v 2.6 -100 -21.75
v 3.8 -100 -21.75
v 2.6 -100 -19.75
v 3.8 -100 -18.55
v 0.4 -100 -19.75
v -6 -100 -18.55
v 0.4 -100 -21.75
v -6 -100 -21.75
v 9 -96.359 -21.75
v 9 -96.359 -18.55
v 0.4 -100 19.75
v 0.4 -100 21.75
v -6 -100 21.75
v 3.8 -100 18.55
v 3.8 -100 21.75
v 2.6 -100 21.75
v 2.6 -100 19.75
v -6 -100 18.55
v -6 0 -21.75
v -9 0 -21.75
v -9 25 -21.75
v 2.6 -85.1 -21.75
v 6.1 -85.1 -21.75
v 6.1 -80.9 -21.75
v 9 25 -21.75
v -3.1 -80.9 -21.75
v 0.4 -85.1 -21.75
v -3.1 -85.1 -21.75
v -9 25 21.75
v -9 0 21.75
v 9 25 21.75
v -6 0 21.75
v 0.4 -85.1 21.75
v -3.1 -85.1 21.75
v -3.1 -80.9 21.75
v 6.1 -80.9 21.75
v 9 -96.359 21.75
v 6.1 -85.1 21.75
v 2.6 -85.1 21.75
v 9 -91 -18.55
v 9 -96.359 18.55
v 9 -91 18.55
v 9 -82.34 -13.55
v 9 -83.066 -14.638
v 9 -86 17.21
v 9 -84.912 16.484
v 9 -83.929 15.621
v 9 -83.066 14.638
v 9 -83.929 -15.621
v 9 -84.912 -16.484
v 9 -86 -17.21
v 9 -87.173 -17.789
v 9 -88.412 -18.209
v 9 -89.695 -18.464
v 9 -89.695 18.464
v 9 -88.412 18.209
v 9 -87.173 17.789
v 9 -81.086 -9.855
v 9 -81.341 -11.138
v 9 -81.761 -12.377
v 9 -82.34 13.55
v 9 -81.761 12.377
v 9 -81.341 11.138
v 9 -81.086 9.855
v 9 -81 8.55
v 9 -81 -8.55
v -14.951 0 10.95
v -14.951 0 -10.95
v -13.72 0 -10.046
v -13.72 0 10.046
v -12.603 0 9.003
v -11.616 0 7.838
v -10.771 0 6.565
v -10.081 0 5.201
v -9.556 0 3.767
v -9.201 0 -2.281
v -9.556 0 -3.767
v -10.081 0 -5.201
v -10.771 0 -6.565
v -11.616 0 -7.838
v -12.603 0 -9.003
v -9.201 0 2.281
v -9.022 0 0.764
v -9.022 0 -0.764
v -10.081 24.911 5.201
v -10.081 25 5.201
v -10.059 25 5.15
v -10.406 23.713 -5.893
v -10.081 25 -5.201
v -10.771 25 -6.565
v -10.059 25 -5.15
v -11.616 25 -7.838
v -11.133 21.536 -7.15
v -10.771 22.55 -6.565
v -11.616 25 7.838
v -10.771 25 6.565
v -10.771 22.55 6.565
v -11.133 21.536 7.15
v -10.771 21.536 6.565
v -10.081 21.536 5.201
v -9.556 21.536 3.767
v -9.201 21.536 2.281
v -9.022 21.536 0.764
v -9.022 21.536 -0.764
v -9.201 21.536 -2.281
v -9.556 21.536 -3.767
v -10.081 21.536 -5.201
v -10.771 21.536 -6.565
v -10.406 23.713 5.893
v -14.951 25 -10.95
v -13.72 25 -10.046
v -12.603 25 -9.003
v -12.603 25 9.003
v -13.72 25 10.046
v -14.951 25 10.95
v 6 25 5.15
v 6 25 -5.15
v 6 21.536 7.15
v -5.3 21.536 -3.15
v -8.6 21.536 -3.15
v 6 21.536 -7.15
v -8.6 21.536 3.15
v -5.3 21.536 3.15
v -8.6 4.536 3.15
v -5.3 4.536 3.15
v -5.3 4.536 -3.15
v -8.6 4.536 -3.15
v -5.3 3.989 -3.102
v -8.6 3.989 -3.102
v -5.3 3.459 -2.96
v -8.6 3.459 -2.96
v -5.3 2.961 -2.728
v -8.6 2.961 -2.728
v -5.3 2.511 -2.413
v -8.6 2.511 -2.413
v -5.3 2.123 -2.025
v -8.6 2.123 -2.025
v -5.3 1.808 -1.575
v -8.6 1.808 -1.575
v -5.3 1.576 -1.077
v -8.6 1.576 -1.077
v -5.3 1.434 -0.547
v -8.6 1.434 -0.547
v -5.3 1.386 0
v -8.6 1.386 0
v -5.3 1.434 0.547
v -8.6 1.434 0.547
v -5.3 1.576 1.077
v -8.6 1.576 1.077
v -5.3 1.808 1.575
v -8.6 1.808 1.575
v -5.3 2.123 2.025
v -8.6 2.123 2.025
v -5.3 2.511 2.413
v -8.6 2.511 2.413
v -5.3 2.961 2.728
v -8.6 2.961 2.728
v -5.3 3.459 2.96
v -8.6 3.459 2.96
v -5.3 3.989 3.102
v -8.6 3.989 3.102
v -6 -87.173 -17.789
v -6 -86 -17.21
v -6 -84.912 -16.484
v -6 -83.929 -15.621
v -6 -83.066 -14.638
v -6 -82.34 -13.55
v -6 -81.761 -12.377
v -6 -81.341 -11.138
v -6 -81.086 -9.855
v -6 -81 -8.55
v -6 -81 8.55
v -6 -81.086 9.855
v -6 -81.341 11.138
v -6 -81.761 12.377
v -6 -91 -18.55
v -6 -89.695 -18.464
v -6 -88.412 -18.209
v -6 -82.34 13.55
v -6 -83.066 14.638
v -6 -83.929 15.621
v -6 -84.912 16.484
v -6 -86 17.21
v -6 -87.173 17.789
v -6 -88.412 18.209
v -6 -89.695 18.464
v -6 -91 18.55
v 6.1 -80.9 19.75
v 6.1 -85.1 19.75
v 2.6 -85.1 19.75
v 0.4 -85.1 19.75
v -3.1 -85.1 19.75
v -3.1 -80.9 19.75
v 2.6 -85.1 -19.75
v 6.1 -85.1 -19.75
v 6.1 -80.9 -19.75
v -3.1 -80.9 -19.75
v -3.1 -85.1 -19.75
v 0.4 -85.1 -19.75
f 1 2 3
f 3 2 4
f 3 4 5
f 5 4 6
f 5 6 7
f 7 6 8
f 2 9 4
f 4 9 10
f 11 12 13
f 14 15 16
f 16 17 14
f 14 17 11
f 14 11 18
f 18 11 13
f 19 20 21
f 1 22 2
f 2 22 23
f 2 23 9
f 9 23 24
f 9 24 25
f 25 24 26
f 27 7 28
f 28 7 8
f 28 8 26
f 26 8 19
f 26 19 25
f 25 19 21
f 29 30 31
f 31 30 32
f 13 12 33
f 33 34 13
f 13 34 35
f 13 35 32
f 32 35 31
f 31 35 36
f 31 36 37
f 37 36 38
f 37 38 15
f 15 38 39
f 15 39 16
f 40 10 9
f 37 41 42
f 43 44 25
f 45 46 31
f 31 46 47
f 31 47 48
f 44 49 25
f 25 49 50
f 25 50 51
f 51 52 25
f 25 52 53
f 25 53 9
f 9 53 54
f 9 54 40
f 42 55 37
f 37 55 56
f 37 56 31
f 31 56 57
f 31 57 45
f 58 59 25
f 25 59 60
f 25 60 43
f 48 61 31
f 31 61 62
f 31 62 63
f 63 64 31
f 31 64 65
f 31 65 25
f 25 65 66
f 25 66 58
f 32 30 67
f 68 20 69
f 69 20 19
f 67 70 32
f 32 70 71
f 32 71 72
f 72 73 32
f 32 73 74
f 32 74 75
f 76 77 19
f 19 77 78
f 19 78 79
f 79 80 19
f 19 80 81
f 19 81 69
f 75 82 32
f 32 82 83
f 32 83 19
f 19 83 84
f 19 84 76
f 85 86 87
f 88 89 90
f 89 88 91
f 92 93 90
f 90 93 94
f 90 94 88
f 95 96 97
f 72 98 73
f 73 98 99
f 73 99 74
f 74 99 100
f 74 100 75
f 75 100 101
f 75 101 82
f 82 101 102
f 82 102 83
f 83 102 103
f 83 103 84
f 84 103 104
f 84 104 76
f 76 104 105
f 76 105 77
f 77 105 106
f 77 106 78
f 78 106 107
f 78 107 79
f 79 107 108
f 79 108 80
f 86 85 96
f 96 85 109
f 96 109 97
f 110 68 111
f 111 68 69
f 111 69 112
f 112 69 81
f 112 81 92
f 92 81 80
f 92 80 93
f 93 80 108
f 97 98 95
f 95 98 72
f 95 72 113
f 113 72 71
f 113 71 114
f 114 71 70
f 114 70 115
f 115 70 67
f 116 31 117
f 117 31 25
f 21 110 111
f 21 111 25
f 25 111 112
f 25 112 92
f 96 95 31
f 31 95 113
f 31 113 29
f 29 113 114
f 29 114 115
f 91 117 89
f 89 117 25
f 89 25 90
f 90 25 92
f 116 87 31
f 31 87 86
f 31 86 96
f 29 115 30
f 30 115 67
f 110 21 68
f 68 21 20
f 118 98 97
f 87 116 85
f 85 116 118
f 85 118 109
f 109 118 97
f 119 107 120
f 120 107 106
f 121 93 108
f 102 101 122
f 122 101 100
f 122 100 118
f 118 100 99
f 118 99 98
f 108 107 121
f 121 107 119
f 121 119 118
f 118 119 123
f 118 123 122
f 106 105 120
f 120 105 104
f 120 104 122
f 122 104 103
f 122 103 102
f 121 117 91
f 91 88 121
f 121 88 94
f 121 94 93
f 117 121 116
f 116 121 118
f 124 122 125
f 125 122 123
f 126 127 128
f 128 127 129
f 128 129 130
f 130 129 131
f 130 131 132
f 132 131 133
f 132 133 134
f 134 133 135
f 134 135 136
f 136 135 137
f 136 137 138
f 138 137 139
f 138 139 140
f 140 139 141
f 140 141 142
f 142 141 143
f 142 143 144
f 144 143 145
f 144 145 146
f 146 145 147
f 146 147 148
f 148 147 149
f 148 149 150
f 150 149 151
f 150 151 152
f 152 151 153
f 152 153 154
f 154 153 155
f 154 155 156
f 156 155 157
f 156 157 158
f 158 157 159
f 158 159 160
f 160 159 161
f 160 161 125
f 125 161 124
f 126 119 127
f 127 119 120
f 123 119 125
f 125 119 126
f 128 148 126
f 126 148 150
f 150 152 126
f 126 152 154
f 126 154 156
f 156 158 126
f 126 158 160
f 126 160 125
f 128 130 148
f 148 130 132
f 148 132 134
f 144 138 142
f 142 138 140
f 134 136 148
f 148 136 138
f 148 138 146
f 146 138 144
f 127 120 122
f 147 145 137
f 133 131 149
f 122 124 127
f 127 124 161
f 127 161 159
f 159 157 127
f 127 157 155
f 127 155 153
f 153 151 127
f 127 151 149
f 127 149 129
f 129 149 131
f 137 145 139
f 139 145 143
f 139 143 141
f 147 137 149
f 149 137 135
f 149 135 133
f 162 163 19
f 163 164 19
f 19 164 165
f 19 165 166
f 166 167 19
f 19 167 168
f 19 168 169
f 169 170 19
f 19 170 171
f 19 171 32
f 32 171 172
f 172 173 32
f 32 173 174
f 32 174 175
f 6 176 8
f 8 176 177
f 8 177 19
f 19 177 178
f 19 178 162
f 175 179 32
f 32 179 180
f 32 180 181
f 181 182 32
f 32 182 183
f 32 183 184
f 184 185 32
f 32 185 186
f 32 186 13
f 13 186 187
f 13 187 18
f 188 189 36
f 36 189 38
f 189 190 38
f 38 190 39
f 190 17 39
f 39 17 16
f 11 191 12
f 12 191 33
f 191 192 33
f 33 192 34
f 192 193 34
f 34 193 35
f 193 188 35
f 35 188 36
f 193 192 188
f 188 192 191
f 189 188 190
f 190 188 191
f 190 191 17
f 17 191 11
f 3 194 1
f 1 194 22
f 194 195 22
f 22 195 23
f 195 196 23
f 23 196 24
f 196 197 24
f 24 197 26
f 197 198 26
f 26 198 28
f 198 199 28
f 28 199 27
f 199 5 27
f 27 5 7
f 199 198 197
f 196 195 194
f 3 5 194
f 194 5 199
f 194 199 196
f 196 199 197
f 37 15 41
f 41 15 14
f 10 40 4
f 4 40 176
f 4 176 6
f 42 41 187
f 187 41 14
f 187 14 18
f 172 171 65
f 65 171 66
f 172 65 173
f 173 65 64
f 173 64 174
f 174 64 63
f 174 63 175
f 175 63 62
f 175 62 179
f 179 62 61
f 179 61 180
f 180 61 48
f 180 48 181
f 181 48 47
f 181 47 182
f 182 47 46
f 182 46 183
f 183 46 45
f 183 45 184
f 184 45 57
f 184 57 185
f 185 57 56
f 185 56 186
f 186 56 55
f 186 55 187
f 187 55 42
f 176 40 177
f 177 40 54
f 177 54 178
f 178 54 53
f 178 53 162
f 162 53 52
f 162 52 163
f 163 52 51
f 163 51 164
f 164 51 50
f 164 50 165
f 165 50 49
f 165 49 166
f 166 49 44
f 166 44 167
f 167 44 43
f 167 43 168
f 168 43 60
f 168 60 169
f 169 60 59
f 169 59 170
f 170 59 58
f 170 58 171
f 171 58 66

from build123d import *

# Parameters (mm, degrees)
SKETCH2_W               = 18
SKETCH2_H               = 43.5
BOSS_EXTRUDE1_DEPTH     = 25
CUT_EXTRUDE1_DEPTH      = 15
CUT_EXTRUDE1_DEPTH_BACK = 6.951267747
CUT_EXTRUDE2_START      = 0.4
CUT_EXTRUDE2_DEPTH      = 3.3
SKETCH5_W               = 15
SKETCH5_H               = 43.5
BOSS_EXTRUDE2_DEPTH     = 100
SKETCH6_W               = 2.2
SKETCH6_H               = 14.9
CUT_EXTRUDE3_DEPTH      = 2
CUT_EXTRUDE4_START      = -43.5
SKETCH6_3_W             = 2.2
SKETCH6_3_H             = 14.9
CUT_EXTRUDE4_DEPTH      = 2
CUT_EXTRUDE5_DEPTH      = 44.5
SKETCH8_W               = 37.1
SKETCH8_H               = 38
CUT_EXTRUDE6_DEPTH      = 16
FILLET1_R               = 10


with BuildPart() as part:
    # Sketch2 → Boss-Extrude1 (new body)
    with BuildSketch(Plane(origin=(0, 0, 0), x_dir=(1, 0, 0), z_dir=(0, 1, 0))):
        with BuildLine():
            Line((-9, 0), (-9, 21.75))
            Line((-9, 21.75), (-14.951267747, 10.950365309))
            ThreePointArc((-14.951267747, 10.950365309), (-10.583942354, 6.231534486), (-9, 0))
        make_face()
        with BuildLine():
            Line((-9, -21.75), (-9, 0))
            ThreePointArc((-9, 0), (-10.583942354, -6.231534486), (-14.951267747, -10.950365309))
            Line((-14.951267747, -10.950365309), (-9, -21.75))
        make_face()
        Rectangle(SKETCH2_W, SKETCH2_H)
    extrude(amount=BOSS_EXTRUDE1_DEPTH)

    # Sketch3 → Cut-Extrude1 (cut, two sides)
    with BuildSketch(Plane(origin=(-9, 0, 0), x_dir=(0, 0, -1), z_dir=(1, 0, 0))) as cut_extrude1_sk:
        Polygon((-5.15, 25), (5.15, 25), (7.15, 21.535898385), (-7.15, 21.535898385), align=None)
    extrude(amount=CUT_EXTRUDE1_DEPTH, mode=Mode.SUBTRACT)
    extrude(cut_extrude1_sk.sketch, amount=-CUT_EXTRUDE1_DEPTH_BACK, mode=Mode.SUBTRACT)

    # Sketch4 → Cut-Extrude2 (cut)
    with BuildSketch(Plane(origin=(-9, 0, 0), x_dir=(0, 0, -1), z_dir=(1, 0, 0)).offset(CUT_EXTRUDE2_START)):
        with BuildLine():
            Line((3.15, 29.404082691), (3.15, 4.535898385))
            ThreePointArc((3.15, 4.535898385), (0, 1.385898385), (-3.15, 4.535898385))
            Line((-3.15, 4.535898385), (-3.15, 29.404082691))
            ThreePointArc((-3.15, 29.404082691), (0, 32.554082691), (3.15, 29.404082691))
        make_face()
    extrude(amount=CUT_EXTRUDE2_DEPTH, mode=Mode.SUBTRACT)

    # Sketch5 → Boss-Extrude2 (add)
    with BuildSketch(Plane.XZ):
        with Locations((1.5, 0)):
            Rectangle(SKETCH5_W, SKETCH5_H)
    extrude(amount=BOSS_EXTRUDE2_DEPTH)

    # Sketch6 → Cut-Extrude3 (cut)
    with BuildSketch(Plane.XY.offset(21.75)):
        Polygon((-3.1, -85.1), (0.4, -85.1), (2.6, -85.1), (6.1, -85.1), (6.1, -80.9), (-3.1, -80.9), align=None)
        with Locations((1.5, -92.55)):
            Rectangle(SKETCH6_W, SKETCH6_H)
    extrude(amount=-CUT_EXTRUDE3_DEPTH, mode=Mode.SUBTRACT)

    # Sketch6<3> → Cut-Extrude4 (cut)
    with BuildSketch(Plane.XY.offset(21.75).offset(CUT_EXTRUDE4_START)):
        Polygon((-3.1, -85.1), (0.4, -85.1), (2.6, -85.1), (6.1, -85.1), (6.1, -80.9), (-3.1, -80.9), align=None)
        with Locations((1.5, -92.55)):
            Rectangle(SKETCH6_3_W, SKETCH6_3_H)
    extrude(amount=CUT_EXTRUDE4_DEPTH, mode=Mode.SUBTRACT)

    # Sketch7 → Cut-Extrude5 (cut, through all)
    with BuildSketch(Plane.XY.offset(21.75)):
        Polygon((9, -96.358920801), (3.8, -100), (9, -100), align=None)
    extrude(amount=-CUT_EXTRUDE5_DEPTH, mode=Mode.SUBTRACT)

    # Sketch8 → Cut-Extrude6 (cut, through all)
    with BuildSketch(Plane.ZY.offset(6)):
        with Locations((0, -100)):
            Rectangle(SKETCH8_W, SKETCH8_H)
    extrude(amount=-CUT_EXTRUDE6_DEPTH, mode=Mode.SUBTRACT)

    # Fillet1
    fillet1_edges = [part.edges().sort_by_distance(p)[0] for p in [
        (1.5, -81, 18.55),
        (1.5, -81, -18.55),
    ]]
    fillet(fillet1_edges, radius=FILLET1_R)


solid = part.part
